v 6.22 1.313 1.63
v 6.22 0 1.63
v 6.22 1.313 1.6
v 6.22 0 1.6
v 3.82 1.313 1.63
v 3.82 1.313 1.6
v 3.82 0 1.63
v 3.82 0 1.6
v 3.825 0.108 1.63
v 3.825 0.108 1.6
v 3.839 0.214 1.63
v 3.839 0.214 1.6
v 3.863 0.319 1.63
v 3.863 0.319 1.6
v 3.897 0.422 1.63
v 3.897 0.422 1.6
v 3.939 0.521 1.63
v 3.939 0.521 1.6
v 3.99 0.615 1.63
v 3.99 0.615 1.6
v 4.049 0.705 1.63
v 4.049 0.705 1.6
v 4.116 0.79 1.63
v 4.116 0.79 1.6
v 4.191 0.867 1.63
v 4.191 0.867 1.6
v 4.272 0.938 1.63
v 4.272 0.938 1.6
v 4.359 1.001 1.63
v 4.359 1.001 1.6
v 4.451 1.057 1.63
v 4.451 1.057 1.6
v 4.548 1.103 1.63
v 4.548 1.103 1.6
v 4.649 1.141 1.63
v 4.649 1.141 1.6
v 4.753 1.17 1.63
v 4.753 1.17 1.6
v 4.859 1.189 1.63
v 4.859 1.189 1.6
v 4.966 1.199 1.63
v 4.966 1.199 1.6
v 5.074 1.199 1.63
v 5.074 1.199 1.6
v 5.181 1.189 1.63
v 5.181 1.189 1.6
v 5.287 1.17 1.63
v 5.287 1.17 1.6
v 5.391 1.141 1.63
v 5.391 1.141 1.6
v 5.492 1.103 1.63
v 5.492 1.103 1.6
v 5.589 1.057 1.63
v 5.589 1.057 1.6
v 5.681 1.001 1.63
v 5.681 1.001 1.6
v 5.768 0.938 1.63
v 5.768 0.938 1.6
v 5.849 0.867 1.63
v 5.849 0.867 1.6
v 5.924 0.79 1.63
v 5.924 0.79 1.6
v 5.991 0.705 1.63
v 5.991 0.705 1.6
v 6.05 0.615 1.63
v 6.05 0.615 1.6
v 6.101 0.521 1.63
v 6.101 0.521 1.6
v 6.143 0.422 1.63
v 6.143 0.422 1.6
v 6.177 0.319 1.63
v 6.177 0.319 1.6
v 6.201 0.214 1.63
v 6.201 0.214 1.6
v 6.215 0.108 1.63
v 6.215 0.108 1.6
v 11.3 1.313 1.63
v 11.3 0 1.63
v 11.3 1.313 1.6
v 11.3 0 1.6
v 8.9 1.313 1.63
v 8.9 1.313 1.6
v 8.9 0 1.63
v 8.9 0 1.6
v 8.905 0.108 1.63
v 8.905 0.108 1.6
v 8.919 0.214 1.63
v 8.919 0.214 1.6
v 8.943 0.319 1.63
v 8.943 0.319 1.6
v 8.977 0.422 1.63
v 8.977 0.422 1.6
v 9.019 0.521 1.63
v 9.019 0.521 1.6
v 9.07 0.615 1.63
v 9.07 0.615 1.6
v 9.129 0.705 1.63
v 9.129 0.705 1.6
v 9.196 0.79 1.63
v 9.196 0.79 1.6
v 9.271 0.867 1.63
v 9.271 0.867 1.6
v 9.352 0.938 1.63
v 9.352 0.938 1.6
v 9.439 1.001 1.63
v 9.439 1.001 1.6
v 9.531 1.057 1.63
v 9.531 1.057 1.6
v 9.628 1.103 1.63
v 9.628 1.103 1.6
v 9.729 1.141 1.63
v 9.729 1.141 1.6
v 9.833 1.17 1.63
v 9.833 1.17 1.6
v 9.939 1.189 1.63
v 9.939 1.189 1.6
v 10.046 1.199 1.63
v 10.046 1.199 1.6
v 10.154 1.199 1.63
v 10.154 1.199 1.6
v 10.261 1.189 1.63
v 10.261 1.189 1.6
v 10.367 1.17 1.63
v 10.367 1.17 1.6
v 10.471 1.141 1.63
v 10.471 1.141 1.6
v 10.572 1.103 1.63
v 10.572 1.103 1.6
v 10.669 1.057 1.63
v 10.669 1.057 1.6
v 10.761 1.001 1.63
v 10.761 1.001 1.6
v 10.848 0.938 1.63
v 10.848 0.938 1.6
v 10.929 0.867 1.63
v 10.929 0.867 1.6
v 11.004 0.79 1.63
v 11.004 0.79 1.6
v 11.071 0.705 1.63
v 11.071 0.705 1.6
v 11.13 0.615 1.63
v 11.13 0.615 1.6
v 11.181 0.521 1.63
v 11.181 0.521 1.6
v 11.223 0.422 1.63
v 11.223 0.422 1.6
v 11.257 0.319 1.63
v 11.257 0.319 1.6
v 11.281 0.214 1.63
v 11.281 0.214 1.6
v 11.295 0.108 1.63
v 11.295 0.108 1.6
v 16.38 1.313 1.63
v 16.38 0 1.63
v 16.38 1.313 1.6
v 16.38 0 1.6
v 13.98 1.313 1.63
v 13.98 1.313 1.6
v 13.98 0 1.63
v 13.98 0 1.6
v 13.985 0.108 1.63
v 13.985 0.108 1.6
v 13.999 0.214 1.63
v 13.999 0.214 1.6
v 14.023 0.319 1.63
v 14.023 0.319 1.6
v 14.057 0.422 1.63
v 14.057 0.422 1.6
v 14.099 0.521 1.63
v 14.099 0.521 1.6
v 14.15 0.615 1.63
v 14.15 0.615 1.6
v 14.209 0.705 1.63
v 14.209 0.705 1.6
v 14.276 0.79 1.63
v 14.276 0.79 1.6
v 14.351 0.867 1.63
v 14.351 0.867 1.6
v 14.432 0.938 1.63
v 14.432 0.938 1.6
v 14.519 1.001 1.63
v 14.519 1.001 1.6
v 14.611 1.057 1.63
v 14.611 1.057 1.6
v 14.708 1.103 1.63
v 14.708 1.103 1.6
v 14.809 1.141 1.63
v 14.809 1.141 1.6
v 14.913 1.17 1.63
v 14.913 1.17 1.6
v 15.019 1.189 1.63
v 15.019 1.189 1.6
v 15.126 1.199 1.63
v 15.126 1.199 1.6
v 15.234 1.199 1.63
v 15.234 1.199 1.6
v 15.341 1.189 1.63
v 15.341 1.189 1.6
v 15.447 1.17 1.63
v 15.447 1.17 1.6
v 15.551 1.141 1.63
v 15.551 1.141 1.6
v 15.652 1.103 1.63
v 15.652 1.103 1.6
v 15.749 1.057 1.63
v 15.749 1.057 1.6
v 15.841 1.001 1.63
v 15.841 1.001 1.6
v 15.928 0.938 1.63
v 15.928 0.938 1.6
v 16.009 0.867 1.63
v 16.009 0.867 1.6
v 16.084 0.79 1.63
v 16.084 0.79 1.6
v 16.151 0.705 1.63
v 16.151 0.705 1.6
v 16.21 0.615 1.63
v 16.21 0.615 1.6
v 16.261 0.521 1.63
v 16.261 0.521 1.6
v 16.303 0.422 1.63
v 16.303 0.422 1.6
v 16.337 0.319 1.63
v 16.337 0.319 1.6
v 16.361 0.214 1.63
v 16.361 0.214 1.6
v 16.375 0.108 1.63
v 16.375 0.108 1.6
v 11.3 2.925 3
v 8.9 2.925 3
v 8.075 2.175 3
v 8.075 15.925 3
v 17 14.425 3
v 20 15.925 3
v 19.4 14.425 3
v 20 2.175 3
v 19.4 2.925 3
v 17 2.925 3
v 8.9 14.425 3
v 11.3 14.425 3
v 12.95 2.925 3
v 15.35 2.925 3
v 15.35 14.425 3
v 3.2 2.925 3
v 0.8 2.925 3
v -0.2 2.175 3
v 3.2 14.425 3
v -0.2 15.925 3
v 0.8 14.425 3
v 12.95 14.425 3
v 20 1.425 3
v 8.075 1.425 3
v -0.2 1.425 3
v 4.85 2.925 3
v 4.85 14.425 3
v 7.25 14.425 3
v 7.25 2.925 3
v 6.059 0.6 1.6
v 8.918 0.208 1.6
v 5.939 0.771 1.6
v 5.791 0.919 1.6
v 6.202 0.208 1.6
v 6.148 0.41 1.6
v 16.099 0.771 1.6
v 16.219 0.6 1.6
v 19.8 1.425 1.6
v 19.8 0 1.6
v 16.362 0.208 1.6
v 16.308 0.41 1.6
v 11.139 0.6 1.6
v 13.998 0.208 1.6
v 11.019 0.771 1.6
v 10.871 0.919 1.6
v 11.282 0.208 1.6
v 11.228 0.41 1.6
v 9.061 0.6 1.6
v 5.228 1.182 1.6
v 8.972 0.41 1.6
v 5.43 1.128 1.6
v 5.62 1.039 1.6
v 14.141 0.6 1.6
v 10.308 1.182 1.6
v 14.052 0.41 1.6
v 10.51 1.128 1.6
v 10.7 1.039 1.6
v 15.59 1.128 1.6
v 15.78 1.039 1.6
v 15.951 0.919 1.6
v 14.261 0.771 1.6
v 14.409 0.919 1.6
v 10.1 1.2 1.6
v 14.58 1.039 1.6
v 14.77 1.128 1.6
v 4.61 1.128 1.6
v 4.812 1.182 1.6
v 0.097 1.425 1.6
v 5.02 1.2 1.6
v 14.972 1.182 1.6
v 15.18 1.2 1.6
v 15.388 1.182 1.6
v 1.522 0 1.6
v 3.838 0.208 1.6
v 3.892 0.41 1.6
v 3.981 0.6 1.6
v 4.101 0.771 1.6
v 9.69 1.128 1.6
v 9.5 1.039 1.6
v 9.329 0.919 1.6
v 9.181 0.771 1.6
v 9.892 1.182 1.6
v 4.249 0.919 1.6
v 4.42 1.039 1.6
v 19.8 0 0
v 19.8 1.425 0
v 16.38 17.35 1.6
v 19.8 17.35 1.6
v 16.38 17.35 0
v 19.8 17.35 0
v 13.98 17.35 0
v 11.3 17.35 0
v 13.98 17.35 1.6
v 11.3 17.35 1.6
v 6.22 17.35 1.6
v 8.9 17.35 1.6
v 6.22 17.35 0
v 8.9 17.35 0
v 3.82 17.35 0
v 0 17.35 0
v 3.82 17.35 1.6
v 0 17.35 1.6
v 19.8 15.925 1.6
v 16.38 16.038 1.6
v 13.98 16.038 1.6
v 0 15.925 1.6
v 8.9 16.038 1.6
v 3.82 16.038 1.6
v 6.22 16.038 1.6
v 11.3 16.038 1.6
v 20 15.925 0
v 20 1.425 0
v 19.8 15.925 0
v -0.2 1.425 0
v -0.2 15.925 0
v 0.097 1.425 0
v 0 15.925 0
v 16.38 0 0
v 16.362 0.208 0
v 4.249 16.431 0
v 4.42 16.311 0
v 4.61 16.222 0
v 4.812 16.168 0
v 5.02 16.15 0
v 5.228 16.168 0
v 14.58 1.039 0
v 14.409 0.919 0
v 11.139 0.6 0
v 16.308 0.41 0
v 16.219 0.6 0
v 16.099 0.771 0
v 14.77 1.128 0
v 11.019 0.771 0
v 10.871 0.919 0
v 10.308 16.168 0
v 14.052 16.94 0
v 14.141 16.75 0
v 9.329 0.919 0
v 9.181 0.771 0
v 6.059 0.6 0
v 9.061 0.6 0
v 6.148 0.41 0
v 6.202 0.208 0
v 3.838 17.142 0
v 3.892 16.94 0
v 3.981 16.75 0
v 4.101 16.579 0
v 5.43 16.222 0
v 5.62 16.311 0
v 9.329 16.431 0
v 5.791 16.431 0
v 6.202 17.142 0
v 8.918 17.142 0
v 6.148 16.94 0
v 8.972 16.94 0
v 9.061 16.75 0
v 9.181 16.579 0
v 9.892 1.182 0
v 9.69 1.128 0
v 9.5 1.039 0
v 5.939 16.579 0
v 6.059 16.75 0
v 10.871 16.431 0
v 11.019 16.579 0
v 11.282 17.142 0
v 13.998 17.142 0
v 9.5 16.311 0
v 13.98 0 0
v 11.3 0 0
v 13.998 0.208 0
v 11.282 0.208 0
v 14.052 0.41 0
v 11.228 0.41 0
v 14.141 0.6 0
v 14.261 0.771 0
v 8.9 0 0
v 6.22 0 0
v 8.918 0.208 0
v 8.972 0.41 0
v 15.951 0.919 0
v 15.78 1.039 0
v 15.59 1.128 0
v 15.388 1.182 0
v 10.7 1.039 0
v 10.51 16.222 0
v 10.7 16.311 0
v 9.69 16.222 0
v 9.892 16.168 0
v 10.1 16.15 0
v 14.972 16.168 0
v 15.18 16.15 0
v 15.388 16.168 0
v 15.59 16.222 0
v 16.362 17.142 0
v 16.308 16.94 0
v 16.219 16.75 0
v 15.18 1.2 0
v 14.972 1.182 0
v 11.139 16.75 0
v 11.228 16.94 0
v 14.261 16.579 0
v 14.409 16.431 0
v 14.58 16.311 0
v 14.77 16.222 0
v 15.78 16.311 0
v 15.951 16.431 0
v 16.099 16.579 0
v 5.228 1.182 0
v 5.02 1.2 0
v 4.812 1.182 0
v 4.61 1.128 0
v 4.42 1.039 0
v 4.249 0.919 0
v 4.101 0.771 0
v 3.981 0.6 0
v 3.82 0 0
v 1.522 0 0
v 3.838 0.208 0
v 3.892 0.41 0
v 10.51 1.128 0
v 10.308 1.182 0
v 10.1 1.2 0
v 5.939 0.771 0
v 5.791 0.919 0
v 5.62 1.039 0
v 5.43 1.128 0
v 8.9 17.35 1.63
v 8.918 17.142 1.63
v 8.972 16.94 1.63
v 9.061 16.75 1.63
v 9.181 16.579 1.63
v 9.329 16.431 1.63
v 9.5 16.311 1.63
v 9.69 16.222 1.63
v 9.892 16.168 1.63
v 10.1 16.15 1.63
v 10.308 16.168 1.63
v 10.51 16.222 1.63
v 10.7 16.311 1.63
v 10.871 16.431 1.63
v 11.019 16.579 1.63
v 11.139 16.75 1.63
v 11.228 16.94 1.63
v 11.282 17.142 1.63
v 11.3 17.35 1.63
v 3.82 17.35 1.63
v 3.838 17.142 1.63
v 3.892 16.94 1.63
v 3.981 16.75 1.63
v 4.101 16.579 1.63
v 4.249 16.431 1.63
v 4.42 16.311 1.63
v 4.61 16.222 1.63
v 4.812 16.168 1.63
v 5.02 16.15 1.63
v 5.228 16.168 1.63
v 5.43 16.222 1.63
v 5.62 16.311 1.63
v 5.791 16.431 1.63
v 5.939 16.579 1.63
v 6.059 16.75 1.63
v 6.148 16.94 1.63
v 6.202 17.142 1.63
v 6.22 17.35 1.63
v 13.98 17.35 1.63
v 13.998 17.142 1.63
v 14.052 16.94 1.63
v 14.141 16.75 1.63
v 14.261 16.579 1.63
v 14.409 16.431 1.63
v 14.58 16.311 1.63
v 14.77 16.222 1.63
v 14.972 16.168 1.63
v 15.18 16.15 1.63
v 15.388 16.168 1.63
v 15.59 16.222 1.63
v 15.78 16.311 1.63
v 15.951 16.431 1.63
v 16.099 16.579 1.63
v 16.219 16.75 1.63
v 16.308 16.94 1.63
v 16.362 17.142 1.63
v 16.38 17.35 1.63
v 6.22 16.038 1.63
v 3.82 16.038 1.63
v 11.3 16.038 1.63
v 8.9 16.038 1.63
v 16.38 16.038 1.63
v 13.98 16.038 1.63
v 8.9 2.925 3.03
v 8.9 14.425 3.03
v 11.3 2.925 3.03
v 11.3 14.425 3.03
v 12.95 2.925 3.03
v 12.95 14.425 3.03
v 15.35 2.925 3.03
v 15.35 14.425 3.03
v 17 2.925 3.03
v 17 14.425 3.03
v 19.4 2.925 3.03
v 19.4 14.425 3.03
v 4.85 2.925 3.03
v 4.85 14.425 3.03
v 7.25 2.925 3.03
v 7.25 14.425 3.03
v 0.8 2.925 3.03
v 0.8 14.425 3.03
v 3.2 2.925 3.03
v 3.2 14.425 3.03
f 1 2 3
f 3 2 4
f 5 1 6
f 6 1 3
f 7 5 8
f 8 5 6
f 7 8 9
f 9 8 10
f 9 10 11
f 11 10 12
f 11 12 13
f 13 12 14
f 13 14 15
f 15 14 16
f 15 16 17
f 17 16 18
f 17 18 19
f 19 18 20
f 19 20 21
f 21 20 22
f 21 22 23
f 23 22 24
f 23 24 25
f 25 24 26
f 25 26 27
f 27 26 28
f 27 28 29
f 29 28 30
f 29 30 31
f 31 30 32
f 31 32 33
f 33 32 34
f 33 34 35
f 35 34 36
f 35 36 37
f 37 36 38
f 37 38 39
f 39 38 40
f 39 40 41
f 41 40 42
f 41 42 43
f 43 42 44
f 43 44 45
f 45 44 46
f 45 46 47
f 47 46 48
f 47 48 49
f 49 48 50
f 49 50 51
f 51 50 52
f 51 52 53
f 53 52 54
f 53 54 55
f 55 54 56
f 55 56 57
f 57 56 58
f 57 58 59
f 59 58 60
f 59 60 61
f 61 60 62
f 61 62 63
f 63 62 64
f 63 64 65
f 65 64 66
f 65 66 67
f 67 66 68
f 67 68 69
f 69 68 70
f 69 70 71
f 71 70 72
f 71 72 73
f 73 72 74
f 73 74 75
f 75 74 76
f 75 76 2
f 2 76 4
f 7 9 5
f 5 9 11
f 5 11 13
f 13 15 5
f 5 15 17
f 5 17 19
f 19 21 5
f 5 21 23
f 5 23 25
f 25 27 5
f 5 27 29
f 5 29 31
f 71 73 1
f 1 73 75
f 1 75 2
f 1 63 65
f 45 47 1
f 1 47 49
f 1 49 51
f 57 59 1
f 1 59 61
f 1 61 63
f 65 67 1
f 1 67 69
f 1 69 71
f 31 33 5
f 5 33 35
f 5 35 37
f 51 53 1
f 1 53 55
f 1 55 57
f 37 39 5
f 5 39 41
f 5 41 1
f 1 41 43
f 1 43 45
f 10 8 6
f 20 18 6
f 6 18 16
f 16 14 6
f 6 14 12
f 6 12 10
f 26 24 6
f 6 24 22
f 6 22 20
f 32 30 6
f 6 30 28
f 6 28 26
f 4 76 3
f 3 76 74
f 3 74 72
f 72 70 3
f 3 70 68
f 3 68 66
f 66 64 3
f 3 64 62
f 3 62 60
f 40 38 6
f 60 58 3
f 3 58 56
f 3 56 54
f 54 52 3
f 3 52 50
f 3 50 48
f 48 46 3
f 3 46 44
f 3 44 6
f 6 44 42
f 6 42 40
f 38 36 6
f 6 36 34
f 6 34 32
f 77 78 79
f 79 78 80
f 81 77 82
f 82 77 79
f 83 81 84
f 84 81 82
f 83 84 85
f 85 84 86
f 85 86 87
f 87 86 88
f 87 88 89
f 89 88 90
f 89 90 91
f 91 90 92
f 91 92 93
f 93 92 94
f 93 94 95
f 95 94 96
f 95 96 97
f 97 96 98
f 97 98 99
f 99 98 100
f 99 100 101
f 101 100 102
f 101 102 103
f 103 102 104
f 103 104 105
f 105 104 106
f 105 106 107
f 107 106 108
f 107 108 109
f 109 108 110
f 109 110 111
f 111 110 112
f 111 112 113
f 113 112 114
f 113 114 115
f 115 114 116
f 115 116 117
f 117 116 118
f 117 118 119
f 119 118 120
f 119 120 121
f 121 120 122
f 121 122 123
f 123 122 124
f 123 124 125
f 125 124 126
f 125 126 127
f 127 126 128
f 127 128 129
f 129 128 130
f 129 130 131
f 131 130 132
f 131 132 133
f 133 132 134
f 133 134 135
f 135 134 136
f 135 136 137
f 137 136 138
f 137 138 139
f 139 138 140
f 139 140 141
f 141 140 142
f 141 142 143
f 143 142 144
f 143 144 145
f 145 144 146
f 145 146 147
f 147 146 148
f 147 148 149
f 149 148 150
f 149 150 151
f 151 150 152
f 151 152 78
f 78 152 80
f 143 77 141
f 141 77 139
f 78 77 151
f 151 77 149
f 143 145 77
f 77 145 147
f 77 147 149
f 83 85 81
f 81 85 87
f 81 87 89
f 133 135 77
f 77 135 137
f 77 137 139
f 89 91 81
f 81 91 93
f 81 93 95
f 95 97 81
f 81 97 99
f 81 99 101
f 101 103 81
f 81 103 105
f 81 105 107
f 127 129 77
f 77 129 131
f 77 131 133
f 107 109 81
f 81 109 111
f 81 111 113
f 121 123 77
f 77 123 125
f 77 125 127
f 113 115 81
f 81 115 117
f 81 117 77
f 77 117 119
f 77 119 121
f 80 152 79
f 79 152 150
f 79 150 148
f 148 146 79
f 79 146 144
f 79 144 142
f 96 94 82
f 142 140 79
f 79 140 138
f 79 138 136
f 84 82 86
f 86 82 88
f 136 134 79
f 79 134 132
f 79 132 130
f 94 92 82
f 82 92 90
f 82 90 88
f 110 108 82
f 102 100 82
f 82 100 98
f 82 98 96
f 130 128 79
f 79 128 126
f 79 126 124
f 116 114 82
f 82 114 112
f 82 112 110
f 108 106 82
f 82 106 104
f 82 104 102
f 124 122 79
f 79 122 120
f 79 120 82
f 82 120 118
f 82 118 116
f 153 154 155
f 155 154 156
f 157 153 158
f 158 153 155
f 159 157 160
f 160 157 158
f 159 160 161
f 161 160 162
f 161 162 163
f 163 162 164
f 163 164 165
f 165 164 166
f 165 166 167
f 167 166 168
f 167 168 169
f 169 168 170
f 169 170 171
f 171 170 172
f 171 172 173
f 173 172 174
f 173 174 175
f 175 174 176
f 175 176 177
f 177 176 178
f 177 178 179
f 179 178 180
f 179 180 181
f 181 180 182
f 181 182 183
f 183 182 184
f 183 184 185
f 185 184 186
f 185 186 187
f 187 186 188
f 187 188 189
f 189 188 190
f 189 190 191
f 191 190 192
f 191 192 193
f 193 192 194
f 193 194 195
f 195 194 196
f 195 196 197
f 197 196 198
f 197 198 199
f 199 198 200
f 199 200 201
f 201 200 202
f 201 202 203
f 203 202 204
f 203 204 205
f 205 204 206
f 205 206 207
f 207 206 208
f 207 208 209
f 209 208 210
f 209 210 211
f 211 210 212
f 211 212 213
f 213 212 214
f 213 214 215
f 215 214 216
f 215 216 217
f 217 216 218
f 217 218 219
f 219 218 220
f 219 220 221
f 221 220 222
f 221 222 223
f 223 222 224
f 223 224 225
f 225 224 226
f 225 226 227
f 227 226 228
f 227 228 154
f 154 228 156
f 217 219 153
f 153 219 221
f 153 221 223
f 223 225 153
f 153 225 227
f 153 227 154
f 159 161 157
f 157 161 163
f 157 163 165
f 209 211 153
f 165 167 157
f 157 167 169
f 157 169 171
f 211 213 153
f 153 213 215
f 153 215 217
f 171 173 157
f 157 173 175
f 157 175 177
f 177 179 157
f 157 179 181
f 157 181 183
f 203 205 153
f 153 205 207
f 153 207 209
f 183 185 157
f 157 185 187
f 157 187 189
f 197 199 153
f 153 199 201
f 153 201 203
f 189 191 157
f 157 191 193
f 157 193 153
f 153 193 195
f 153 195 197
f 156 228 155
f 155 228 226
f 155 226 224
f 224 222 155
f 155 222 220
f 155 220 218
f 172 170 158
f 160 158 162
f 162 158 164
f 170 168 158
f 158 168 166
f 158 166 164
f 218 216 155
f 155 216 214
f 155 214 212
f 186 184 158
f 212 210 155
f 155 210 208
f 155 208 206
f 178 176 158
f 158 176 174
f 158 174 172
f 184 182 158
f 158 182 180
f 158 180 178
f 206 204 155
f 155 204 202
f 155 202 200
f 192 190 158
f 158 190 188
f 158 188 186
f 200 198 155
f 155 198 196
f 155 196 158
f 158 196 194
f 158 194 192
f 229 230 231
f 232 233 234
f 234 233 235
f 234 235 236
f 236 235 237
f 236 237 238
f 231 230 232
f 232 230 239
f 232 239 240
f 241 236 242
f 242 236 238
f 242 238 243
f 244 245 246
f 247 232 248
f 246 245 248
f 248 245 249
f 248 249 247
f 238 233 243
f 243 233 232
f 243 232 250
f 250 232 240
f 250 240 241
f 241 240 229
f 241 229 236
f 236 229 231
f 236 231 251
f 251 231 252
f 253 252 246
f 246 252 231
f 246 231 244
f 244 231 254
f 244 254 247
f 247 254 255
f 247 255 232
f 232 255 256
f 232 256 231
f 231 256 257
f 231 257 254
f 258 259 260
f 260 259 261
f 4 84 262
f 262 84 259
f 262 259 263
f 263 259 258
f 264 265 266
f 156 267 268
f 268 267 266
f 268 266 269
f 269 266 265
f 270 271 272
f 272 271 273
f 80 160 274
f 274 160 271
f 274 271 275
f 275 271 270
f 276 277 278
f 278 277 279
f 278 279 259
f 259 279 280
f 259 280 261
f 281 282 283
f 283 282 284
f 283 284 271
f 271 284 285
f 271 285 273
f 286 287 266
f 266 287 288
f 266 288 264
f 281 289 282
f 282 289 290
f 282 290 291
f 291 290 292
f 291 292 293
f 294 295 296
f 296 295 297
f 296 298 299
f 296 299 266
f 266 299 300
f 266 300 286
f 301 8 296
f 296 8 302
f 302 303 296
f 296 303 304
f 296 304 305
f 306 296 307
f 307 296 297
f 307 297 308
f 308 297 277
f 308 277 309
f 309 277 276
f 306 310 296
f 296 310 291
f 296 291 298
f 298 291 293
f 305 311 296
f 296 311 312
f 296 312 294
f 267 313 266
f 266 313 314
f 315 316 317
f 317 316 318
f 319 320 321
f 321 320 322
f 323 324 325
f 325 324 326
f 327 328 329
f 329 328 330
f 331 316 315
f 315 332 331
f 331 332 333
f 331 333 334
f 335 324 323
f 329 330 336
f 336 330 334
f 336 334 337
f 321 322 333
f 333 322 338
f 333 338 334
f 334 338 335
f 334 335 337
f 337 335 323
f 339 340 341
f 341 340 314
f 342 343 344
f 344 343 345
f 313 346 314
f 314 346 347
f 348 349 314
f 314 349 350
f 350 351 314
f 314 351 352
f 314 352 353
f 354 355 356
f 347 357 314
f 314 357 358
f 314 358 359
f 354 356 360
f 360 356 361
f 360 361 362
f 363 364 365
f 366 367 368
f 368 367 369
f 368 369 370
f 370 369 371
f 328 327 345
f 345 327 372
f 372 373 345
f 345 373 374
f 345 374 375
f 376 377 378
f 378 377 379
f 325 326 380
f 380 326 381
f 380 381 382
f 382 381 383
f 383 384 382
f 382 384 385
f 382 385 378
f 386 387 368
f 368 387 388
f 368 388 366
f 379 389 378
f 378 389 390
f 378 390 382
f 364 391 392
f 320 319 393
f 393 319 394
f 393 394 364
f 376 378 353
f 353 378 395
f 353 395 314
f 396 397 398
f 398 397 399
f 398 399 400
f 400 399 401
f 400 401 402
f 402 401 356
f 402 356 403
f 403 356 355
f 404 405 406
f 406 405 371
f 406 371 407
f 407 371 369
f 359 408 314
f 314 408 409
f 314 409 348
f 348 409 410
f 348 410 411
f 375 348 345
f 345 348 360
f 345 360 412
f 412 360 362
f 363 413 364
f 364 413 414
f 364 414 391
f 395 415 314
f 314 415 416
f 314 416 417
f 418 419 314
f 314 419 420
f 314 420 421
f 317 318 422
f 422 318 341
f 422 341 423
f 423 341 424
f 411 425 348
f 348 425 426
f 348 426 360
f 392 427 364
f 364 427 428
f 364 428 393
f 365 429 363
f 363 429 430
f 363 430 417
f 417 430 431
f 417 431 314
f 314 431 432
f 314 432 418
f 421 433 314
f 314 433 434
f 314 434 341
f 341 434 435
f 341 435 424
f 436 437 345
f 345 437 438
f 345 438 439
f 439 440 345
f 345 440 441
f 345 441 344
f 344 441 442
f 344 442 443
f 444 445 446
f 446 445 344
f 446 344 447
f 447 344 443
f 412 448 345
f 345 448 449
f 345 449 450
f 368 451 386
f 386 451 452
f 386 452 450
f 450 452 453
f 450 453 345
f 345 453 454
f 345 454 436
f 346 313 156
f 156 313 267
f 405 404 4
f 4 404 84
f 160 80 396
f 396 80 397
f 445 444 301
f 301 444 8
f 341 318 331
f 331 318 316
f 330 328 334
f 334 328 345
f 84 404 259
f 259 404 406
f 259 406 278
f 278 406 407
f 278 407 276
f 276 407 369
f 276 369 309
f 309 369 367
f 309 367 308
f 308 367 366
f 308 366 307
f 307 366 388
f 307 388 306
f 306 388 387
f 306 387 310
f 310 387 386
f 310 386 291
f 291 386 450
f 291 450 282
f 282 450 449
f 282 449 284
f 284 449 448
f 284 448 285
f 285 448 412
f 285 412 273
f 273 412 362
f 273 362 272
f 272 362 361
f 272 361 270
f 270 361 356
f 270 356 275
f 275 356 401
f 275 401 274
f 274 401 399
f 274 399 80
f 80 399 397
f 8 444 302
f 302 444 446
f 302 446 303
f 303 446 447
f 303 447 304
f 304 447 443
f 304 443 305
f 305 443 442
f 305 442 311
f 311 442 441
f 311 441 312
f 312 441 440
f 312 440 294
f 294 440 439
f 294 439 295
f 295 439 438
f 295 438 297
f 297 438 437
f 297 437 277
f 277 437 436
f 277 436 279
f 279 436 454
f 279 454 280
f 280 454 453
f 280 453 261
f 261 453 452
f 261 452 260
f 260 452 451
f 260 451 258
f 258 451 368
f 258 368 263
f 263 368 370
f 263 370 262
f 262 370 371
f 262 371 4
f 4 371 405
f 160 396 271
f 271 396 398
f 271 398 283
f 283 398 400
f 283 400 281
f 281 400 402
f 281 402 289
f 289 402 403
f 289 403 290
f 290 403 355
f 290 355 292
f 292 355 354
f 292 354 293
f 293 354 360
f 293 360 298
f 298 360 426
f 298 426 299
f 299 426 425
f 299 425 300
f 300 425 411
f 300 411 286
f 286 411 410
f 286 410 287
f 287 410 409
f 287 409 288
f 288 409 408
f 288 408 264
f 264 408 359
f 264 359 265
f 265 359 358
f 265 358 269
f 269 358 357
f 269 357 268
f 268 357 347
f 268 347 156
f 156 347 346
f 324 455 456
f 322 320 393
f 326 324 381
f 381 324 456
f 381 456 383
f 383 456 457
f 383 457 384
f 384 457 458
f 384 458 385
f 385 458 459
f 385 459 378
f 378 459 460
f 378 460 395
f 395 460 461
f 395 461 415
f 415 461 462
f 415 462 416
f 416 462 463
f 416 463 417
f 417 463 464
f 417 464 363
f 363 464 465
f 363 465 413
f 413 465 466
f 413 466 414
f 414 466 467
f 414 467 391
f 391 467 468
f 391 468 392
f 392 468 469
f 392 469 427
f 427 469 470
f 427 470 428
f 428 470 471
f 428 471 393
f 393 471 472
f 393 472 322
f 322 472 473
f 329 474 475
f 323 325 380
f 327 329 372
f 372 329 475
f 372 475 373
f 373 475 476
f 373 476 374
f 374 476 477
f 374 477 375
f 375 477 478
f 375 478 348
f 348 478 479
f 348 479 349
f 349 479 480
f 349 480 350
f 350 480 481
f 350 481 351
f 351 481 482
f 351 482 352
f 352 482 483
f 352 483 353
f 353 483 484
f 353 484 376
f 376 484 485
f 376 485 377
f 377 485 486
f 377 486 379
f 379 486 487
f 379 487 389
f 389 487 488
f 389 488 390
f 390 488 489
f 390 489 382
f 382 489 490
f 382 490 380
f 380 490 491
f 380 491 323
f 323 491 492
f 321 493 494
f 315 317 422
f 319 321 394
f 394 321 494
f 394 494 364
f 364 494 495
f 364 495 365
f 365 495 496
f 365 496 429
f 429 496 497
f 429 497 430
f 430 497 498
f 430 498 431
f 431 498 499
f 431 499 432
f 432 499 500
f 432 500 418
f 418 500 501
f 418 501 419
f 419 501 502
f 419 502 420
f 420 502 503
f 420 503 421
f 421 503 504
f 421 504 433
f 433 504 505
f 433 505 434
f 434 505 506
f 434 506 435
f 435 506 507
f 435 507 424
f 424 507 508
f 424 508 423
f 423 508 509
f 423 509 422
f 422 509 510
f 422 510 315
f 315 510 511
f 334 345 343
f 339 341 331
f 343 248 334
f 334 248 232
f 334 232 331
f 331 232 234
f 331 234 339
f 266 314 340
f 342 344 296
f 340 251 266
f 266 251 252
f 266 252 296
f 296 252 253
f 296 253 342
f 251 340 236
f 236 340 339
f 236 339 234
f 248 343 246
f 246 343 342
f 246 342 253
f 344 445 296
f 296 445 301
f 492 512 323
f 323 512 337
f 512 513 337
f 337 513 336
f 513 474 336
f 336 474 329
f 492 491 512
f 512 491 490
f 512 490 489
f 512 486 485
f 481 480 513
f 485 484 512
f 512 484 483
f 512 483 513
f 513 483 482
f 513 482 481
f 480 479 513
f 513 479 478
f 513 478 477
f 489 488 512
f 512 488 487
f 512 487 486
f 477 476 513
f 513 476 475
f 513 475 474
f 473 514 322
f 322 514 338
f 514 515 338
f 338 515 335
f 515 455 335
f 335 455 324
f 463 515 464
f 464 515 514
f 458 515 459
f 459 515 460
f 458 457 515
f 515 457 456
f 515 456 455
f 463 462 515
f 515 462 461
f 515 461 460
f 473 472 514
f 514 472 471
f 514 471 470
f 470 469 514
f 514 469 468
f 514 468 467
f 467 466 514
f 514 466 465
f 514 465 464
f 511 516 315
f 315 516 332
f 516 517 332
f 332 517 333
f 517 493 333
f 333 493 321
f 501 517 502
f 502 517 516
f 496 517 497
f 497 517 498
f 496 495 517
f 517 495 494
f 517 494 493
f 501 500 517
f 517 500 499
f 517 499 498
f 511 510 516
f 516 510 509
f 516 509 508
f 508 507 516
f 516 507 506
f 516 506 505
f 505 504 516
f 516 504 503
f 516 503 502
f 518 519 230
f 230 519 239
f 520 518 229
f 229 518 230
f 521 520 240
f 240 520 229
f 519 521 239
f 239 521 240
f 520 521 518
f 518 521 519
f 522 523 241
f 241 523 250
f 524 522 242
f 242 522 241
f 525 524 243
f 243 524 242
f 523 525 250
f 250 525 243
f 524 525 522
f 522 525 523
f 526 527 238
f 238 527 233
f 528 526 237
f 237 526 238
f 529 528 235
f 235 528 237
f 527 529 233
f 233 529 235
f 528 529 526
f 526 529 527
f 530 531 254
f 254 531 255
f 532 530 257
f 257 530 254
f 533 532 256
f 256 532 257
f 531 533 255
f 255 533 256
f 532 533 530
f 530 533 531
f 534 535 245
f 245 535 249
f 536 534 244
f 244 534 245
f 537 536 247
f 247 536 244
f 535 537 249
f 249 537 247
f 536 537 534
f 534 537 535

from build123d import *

# Parameters (mm, degrees)
SKETCH1_W             = 19.8
SKETCH1_H             = 17.35
BOSS_EXTRUDE1_DEPTH   = 1.6
CUT_EXTRUDE2_START    = -1.6
CUT_EXTRUDE2_DEPTH    = 4.2
BOSS_EXTRUDE2_DEPTH   = 3
CUT_EXTRUDE3_DEPTH    = 3
BOSS_EXTRUDE7_DEPTH   = 0.03
BOSS_EXTRUDE7_2_DEPTH = 0.03
BOSS_EXTRUDE7_3_DEPTH = 0.03
SKETCH8_W             = 2.4
SKETCH8_H             = 11.5
BOSS_EXTRUDE8_DEPTH   = 3.03
LPATTERN1_COUNT       = 3
LPATTERN1_PITCH       = 4.05
LPATTERN1_COL_COUNT   = 3
LPATTERN1_COL_PITCH   = 4.05


with BuildPart() as part:
    # Sketch1 → Boss-Extrude1 (new body)
    with BuildSketch(Plane.XY):
        with Locations((9.9, 8.675)):
            Rectangle(SKETCH1_W, SKETCH1_H)
    extrude(amount=BOSS_EXTRUDE1_DEPTH)

    # Sketch3 → Cut-Extrude2 (cut)
    with BuildSketch(Plane.XY.offset(CUT_EXTRUDE2_START)):
        with BuildLine():
            ThreePointArc((8.9, 0), (10.1, 1.2), (11.3, 0))
            Line((11.3, 0), (9.9, 0))
            Line((9.9, 0), (8.9, 0))
        make_face()
        with BuildLine():
            ThreePointArc((13.98, 0), (15.18, 1.2), (16.38, 0))
            Line((16.38, 0), (15.18, 0))
            Line((15.18, 0), (13.98, 0))
        make_face()
        with BuildLine():
            ThreePointArc((3.82, 0), (5.02, 1.2), (6.22, 0))
            Line((6.22, 0), (5.02, 0))
            Line((5.02, 0), (3.82, 0))
        make_face()
    cut_extrude2 = extrude(amount=CUT_EXTRUDE2_DEPTH, mode=Mode.SUBTRACT)

    # Mirror1: Cut-Extrude2 across plane
    add(cut_extrude2.mirror(Plane.ZX.offset(8.675)), mode=Mode.SUBTRACT)

    # Sketch4 → Boss-Extrude2 (add)
    with BuildSketch(Plane.XY):
        Polygon((-0.2, 1.425), (19.8, 1.425), (20, 1.425), (20, 15.925), (0, 15.925), (-0.2, 15.925), align=None)
    extrude(amount=BOSS_EXTRUDE2_DEPTH)

    # Sketch6 → Cut-Extrude3 (cut)
    with BuildSketch(Plane.XY.offset(3)):
        Polygon((1.522230631, 0), (0.097230631, 1.425), (0, 1.425), (0, 0), align=None)
    extrude(amount=-CUT_EXTRUDE3_DEPTH, mode=Mode.SUBTRACT)


with BuildPart() as body_2:
    # Sketch7 → Boss-Extrude7 (new body)
    with BuildSketch(Plane.XY.offset(1.6)):
        with BuildLine():
            Line((3.82, 1.3125), (3.82, 0))
            ThreePointArc((3.82, 0), (5.02, 1.2), (6.22, 0))
            Line((6.22, 0), (6.22, 1.3125))
            Line((6.22, 1.3125), (3.82, 1.3125))
        make_face()
    boss_extrude7 = extrude(amount=BOSS_EXTRUDE7_DEPTH)


with BuildPart() as body_3:
    # Sketch7 → Boss-Extrude7 2 (new body)
    with BuildSketch(Plane.XY.offset(1.6)):
        with BuildLine():
            Line((8.9, 1.3125), (8.9, 0))
            ThreePointArc((8.9, 0), (10.1, 1.2), (11.3, 0))
            Line((11.3, 0), (11.3, 1.3125))
            Line((11.3, 1.3125), (8.9, 1.3125))
        make_face()
    boss_extrude7_2 = extrude(amount=BOSS_EXTRUDE7_2_DEPTH)


with BuildPart() as body_4:
    # Sketch7 → Boss-Extrude7 3 (new body)
    with BuildSketch(Plane.XY.offset(1.6)):
        with BuildLine():
            Line((13.98, 1.3125), (13.98, 0))
            ThreePointArc((13.98, 0), (15.18, 1.2), (16.38, 0))
            Line((16.38, 0), (16.38, 1.3125))
            Line((16.38, 1.3125), (13.98, 1.3125))
        make_face()
    boss_extrude7_3 = extrude(amount=BOSS_EXTRUDE7_3_DEPTH)


with BuildPart() as part_1:
    add(part.part)

    # Mirror2: Boss-Extrude7, Boss-Extrude7 2, Boss-Extrude7 3 across plane
    add(boss_extrude7.mirror(Plane.ZX.offset(8.675)))
    add(boss_extrude7_2.mirror(Plane.ZX.offset(8.675)))
    add(boss_extrude7_3.mirror(Plane.ZX.offset(8.675)))

    # Sketch8 → Boss-Extrude8 (add)
    with BuildSketch(Plane.XY):
        with Locations((10.1, 8.675)):
            Rectangle(SKETCH8_W, SKETCH8_H)
    boss_extrude8 = extrude(amount=BOSS_EXTRUDE8_DEPTH)

    # LPattern1: Boss-Extrude8 ×3
    with Locations(*[(i * LPATTERN1_PITCH, 0, 0) for i in range(1, LPATTERN1_COUNT)]):
        add(boss_extrude8)

    # LPattern1 col: Boss-Extrude8 ×3
    with Locations(*[(-i * LPATTERN1_COL_PITCH, 0, 0) for i in range(1, LPATTERN1_COL_COUNT)]):
        add(boss_extrude8)


solid = Compound([body_2.part, body_3.part, body_4.part, part_1.part])
